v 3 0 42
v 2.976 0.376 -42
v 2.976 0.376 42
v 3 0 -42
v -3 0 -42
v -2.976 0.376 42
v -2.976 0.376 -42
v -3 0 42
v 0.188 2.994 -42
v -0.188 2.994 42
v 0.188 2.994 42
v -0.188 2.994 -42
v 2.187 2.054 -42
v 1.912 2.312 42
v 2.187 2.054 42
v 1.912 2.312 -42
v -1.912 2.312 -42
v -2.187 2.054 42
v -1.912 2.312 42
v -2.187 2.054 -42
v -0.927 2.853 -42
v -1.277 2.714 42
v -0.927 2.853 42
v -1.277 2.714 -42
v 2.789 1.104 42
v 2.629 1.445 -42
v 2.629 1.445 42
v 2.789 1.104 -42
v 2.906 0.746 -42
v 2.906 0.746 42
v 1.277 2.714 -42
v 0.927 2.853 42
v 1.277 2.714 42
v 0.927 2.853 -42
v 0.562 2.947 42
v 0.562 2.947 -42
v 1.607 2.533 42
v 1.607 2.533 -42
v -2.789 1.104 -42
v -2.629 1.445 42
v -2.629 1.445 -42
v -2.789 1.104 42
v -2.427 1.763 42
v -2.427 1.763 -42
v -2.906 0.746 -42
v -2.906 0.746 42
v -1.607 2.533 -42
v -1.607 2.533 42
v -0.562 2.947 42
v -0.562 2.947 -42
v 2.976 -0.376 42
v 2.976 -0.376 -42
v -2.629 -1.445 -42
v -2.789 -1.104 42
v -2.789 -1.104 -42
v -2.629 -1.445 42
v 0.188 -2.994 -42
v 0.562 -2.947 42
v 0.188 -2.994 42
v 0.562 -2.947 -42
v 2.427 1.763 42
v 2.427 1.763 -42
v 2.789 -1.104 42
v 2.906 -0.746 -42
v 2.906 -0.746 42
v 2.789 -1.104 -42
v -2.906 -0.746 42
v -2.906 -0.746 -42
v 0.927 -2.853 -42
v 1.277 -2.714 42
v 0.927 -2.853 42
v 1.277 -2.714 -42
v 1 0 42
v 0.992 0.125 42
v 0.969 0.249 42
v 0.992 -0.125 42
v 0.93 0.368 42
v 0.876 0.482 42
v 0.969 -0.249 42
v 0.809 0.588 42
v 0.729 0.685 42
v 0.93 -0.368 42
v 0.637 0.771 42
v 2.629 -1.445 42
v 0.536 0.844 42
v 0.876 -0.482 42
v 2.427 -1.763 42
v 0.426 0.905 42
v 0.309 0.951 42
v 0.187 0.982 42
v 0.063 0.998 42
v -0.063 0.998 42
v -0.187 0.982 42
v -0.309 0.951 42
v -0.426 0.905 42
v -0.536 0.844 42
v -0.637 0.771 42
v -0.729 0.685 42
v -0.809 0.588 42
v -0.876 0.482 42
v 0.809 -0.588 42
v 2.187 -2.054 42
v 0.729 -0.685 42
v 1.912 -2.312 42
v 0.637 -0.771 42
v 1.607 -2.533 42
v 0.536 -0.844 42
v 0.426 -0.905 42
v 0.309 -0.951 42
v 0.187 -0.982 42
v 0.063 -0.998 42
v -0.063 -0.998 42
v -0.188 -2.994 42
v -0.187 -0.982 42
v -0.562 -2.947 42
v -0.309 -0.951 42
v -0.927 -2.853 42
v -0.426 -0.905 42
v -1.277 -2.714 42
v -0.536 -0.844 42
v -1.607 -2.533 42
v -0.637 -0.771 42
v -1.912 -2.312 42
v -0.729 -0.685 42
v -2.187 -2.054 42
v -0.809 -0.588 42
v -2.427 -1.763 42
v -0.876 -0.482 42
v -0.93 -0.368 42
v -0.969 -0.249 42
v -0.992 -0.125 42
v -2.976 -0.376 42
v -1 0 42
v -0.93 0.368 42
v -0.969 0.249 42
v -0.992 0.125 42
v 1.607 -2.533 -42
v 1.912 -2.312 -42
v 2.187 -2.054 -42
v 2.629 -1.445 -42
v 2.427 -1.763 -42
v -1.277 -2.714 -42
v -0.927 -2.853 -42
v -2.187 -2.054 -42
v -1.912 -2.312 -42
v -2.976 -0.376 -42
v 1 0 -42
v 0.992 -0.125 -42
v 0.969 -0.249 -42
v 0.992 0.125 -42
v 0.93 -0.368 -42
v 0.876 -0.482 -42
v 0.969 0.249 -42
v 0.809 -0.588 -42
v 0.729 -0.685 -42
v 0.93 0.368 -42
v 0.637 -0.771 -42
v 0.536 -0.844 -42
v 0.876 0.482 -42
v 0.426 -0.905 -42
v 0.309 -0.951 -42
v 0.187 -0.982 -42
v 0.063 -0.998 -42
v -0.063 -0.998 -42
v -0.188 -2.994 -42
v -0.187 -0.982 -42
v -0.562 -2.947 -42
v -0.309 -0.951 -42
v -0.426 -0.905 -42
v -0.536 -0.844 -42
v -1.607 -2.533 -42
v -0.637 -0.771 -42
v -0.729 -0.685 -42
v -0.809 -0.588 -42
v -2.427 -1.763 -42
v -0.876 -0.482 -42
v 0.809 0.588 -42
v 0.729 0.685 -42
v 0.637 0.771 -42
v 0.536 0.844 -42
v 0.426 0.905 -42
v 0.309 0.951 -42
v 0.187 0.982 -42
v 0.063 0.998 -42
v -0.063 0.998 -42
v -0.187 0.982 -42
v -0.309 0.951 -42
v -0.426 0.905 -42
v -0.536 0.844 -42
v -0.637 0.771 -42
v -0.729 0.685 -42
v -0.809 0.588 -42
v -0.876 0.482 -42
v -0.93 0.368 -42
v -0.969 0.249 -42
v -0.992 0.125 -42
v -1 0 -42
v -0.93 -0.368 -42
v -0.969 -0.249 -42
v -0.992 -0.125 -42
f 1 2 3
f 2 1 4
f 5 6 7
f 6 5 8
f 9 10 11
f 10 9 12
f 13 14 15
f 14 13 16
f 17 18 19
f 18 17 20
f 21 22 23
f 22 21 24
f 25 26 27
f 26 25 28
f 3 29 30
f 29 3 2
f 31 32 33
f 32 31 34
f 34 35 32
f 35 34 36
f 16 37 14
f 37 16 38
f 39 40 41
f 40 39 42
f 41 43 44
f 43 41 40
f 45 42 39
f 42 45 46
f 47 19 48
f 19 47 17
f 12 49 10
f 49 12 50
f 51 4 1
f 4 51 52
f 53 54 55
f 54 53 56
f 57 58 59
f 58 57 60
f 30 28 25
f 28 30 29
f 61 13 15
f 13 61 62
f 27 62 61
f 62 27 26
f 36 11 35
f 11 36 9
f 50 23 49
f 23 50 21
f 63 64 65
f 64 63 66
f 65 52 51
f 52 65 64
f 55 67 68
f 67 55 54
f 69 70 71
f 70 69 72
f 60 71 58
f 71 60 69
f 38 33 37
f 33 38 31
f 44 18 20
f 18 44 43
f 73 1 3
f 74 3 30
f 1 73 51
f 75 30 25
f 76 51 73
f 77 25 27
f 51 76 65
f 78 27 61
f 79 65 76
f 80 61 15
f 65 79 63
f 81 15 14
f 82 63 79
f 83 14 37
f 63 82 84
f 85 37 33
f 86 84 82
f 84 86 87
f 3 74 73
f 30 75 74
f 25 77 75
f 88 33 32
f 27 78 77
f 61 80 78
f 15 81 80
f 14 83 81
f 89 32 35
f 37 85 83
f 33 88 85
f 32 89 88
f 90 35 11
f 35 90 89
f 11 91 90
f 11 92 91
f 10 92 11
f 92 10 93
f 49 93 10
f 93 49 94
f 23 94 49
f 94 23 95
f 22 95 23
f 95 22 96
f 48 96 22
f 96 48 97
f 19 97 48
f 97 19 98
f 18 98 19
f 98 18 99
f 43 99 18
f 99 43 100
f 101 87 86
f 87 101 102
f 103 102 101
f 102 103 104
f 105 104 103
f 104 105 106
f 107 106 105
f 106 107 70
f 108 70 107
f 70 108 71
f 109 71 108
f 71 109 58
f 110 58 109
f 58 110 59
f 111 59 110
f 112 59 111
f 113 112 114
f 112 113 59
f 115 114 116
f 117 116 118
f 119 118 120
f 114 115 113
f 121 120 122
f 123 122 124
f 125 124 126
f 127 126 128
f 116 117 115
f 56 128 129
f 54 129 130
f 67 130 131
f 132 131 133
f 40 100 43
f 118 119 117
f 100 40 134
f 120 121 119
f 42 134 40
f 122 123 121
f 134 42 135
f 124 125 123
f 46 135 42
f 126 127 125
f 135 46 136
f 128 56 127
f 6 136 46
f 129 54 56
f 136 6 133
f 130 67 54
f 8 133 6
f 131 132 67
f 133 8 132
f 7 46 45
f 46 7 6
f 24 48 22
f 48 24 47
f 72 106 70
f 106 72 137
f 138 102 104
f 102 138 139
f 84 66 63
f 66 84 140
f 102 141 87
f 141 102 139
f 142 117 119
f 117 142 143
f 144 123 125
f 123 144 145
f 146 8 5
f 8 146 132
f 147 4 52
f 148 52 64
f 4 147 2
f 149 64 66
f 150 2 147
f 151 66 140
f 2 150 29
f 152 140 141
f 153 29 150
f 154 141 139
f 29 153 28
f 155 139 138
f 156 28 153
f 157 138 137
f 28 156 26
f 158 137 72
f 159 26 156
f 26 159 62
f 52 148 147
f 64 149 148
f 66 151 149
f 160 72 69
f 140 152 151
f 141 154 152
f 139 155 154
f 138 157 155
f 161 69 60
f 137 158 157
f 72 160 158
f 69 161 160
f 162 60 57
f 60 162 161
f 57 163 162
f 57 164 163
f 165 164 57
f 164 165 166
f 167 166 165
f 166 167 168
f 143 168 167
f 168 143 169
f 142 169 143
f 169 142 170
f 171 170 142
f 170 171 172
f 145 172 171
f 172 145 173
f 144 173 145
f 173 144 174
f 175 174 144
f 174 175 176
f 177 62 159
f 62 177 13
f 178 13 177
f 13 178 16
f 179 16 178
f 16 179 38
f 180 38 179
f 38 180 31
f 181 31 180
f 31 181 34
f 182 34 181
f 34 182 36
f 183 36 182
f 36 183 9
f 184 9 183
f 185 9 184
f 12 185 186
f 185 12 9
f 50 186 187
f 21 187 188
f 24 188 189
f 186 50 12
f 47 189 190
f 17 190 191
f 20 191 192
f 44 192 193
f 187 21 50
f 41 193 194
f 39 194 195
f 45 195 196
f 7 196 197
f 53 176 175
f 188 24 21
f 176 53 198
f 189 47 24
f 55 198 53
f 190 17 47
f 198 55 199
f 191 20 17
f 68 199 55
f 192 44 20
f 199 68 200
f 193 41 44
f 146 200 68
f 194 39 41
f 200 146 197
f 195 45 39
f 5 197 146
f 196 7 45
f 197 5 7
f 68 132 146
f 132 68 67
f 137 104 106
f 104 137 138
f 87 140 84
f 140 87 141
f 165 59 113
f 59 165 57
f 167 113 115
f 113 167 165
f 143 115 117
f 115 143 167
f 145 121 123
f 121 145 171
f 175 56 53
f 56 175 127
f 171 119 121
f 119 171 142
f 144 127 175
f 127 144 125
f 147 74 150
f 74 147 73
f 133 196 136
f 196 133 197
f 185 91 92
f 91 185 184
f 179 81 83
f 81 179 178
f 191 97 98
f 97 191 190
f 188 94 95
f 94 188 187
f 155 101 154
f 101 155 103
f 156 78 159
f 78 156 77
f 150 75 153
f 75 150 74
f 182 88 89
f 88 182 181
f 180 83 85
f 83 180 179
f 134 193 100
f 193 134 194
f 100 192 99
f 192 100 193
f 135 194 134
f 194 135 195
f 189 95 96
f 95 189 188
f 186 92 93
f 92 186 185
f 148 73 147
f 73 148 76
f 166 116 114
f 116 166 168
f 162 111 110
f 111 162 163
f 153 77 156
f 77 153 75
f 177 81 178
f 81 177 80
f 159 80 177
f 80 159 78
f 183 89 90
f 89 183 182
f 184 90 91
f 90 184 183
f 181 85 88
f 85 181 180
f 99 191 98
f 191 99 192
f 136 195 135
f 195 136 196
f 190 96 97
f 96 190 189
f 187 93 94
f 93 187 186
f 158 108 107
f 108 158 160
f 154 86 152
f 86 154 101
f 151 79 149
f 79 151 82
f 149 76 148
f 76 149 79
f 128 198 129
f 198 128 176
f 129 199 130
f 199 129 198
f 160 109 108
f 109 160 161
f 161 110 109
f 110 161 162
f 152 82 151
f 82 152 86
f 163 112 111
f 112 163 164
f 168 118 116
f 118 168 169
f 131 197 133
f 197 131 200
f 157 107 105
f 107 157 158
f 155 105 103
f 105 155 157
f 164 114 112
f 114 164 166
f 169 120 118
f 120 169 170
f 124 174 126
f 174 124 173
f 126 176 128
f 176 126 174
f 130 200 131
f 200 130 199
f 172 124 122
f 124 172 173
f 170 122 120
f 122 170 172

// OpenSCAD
$fn = 50;


difference() {
	union() {
		translate(v = [0, 0, -42.0000000000]) {
			cylinder(h = 84, r = 3.0000000000);
		}
	}
	union() {
		translate(v = [0, 0, -100.0000000000]) {
			cylinder(h = 200, r = 1.0000000000);
		}
	}
}
